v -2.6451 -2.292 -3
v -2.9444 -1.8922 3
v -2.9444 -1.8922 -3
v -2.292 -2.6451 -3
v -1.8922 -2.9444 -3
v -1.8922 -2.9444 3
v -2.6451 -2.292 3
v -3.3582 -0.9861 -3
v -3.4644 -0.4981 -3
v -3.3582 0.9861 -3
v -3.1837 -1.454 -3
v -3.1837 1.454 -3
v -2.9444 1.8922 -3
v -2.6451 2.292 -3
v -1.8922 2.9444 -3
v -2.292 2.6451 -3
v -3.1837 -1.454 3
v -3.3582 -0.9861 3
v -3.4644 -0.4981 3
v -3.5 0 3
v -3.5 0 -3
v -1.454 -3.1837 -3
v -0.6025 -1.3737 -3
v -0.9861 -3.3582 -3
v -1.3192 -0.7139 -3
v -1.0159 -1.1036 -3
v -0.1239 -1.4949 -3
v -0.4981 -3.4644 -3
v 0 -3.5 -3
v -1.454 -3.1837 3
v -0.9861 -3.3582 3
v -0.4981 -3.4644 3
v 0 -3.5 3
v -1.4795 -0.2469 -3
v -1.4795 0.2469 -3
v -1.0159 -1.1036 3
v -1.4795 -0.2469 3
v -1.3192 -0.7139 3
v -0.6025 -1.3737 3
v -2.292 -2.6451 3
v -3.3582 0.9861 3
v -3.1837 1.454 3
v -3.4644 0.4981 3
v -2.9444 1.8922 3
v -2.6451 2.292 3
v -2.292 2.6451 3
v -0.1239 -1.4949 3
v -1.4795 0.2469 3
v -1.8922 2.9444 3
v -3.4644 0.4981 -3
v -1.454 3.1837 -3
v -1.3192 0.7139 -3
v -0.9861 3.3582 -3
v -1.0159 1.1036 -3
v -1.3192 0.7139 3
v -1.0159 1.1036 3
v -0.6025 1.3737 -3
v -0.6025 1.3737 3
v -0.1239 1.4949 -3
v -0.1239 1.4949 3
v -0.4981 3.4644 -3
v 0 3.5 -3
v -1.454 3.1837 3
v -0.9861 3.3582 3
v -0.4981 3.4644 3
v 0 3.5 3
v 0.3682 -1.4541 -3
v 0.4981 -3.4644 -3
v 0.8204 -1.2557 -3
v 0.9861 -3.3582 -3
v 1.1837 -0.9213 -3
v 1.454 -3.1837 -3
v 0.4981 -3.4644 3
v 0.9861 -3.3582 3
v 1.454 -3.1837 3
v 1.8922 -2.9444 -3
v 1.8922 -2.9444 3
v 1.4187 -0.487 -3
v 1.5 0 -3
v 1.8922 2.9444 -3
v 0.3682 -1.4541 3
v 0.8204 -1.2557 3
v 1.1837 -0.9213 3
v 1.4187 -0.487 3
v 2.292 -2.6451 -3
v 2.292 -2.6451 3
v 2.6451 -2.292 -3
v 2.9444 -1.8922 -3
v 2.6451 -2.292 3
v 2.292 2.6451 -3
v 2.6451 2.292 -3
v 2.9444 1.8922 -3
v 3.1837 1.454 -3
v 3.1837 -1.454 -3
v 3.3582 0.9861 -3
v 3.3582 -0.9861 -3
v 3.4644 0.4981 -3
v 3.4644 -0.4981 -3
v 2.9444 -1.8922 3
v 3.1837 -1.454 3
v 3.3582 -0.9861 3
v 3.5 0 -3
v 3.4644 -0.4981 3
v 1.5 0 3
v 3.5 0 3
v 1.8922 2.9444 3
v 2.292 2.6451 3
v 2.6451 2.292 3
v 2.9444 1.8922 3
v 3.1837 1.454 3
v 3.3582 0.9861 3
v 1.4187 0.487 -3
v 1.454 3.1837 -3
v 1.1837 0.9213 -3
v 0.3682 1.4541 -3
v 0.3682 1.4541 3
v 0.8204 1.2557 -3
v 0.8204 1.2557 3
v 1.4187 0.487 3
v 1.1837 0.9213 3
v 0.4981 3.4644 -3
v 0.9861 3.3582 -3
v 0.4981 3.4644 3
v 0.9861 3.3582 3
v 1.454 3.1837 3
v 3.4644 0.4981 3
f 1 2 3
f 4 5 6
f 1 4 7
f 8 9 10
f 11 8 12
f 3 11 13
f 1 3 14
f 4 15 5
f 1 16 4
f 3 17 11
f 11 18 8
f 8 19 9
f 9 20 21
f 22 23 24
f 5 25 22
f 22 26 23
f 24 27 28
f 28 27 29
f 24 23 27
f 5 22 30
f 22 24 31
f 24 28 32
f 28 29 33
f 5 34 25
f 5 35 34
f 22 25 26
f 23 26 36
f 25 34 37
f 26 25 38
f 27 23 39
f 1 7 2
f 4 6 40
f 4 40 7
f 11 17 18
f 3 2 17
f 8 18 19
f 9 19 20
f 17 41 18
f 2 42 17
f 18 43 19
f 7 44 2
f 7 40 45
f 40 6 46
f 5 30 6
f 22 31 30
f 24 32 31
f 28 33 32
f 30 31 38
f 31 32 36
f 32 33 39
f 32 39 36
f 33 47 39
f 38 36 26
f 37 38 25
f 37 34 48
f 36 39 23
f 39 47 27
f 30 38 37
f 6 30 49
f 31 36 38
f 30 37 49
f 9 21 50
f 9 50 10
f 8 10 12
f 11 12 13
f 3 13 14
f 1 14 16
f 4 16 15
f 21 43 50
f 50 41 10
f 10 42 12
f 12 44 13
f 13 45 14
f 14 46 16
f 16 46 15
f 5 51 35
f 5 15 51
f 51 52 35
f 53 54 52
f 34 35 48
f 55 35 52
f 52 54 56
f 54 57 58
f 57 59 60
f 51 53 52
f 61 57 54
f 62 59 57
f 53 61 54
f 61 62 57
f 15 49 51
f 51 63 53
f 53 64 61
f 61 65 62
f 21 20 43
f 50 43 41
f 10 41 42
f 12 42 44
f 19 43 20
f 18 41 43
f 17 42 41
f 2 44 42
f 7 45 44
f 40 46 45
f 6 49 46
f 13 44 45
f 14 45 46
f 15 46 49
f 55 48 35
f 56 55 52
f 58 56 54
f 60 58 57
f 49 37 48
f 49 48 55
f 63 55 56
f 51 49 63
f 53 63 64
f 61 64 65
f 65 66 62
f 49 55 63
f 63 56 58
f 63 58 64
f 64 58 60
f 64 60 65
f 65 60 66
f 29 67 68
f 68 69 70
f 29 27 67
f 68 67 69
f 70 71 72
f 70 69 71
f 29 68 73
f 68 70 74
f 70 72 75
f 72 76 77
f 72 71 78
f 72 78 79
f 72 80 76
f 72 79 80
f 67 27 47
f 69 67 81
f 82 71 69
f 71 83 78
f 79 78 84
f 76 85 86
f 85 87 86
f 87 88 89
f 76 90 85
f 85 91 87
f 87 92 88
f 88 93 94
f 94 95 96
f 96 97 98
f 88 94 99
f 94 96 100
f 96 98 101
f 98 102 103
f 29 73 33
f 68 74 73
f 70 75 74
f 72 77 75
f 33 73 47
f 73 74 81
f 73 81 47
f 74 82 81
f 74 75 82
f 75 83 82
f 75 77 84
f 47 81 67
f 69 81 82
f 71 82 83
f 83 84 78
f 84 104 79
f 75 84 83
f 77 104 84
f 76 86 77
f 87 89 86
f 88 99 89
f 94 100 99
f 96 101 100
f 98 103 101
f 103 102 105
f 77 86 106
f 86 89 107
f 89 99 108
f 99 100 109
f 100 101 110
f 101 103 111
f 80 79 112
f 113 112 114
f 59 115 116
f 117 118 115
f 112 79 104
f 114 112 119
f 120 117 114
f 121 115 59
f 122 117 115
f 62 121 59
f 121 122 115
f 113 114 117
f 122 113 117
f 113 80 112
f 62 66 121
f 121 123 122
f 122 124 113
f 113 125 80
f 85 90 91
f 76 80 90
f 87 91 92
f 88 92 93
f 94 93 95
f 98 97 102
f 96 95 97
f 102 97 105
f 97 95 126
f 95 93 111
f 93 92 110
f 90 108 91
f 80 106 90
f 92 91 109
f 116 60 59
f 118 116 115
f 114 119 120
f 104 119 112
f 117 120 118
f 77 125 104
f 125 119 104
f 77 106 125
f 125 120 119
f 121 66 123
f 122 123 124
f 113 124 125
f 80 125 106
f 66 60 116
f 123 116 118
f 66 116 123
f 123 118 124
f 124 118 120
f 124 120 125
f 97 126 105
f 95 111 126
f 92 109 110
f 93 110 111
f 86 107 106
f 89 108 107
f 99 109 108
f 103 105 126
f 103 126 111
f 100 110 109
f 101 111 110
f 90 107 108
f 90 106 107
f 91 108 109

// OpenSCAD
// file: ../lib/lib.scad
// Shared helpers. Include AFTER params.scad (needs TOL, M3_* etc.).
$fa = 4; $fs = 0.5;

module rrect(size, r) {            // 2D rounded rectangle, centred
    r2 = min(r, min(size[0], size[1]) / 2 - 0.001);
    offset(r = r2) square([size[0] - 2 * r2, size[1] - 2 * r2], center = true);
}
module rbox(size, r, center_xy = true) {   // box with rounded vertical edges
    translate(center_xy ? [0, 0, 0] : [size[0] / 2, size[1] / 2, 0])
        linear_extrude(size[2]) rrect([size[0], size[1]], r);
}
module rbox_at(x0, x1, y0, y1, z0, z1, r = 0.01) {
    translate([(x0 + x1) / 2, (y0 + y1) / 2, z0]) rbox([x1 - x0, y1 - y0, z1 - z0], r);
}
module box_at(x0, x1, y0, y1, z0, z1) { translate([x0, y0, z0]) cube([x1 - x0, y1 - y0, z1 - z0]); }

module ring(ro, ri, h) { difference() { cylinder(r = ro, h = h); translate([0, 0, -1]) cylinder(r = ri, h = h + 2); } }
module ring_sector(ro, ri, h, a0, a1) {
    intersection() {
        ring(ro, ri, h);
        linear_extrude(h) polygon(concat([[0, 0]], [for (a = [a0 : (a1 - a0) / 24 : a1]) 2 * ro * [cos(a), sin(a)]]));
    }
}
// teardrop hole along an axis lying horizontal (axis = Y after rotation), printable w/o support
module teardrop2d(d) { union() { circle(d = d); rotate(45) square(d / 2); } }
// vertical heat-set insert hole, opening at z=0 going +z (depth l)
module insert_hole(l = M3_INSERT_L) { translate([0, 0, -EPS]) cylinder(d = M3_INSERT_D, h = l + EPS); }
module m3_clear(l) { translate([0, 0, -EPS]) cylinder(d = M3_CLEAR, h = l + 2 * EPS); }
module m3_csk(l) {  // countersunk clearance from z=0 upward, head at z=0 side
    translate([0, 0, -EPS]) { cylinder(d = M3_CLEAR, h = l + 2 * EPS); cylinder(d1 = 6.4, d2 = M3_CLEAR, h = 1.7); }
}
module card2d() { rrect([CARD_L, CARD_W], CARD_R); }
module card_at(cy, z) { translate([0, cy, z]) linear_extrude(CARD_T) card2d(); }

// ---- gears ----
function _inv(a) = tan(a) - a * PI_ / 180;           // involute function, a in deg
function _invpt(rb, r, ang0, s) = let(al = acos(rb / r), th = ang0 - s * (_inv(al) * 180 / PI_)) [r * cos(th), r * sin(th)];
module involute_gear2d(m, z, pa = 20, clearance = 0.05) {
    rp = m * z / 2; rb = rp * cos(pa); ra = rp + m - clearance; rf = rp - 1.25 * m;
    half = 90 / z + _inv(pa) * 180 / PI_;            // tooth half-angle at base (deg)
    n = 8;
    rs = [for (i = [0 : n]) max(rb, rf) + (ra - max(rb, rf)) * i / n];
    union() {
        circle(r = rf, $fn = z * 4);
        for (k = [0 : z - 1]) rotate(k * 360 / z) polygon(concat(
            [[rf * cos(-half), rf * sin(-half)]],
            [for (r = rs) let(p = _invpt(rb, r, half, 1)) [p[0], -p[1]]],
            [for (i = [n : -1 : 0]) _invpt(rb, rs[i], half, 1)],
            [[rf * cos(half), rf * sin(half)]]));
    }
}
// straight gear rack (2D in XY: teeth along +x, pointing -y, pitch line at y=0)
module gear_rack2d(m, len, back = 3) {
    p = PI_ * m; ad = m; de = 1.25 * m; t = tan(20);
    n = ceil(len / p) + 1;
    intersection() {
        union() {
            translate([0, de]) square([len, back]);
            for (i = [0 : n]) if (i * p - p / 4 - (p / 4 + de * t) >= 0 && i * p + de * t <= len) translate([i * p - p / 4, 0]) polygon([
                [-(p / 4 + de * t), de + 0.01], [p / 4 + de * t + 0.01, de + 0.01],
                [p / 4 - ad * t, -ad], [-(p / 4 - ad * t), -ad] ]);
        }
        translate([0, -ad - 1]) square([len, ad + de + back + 2]);
    }
}
// GT2 belt-tooth profile ring (teeth outward), 2D
module gt2_ring2d(n, r_land, ri) {
    union() {
        difference() { circle(r = r_land + 0.01, $fn = n * 2); circle(r = ri, $fn = n * 2); }
        for (k = [0 : n - 1]) rotate(k * 360 / n)
            translate([r_land, 0]) hull() { translate([-0.2, 0]) square([0.2, 1.0], center = true); translate([0.25, 0]) circle(r = 0.5, $fn = 12); }
    }
}
// main file
// Vendor model: rubber pinch roller Ø6 x 6 mm, 3 mm bore (loader pinch, x2). Local: axis Z, centred.
include <../params.scad>
include <../lib/lib.scad>
module vendor_pinch_roller() color([0.2,0.2,0.22]) difference() { translate([0, 0, -PINCH_W / 2]) cylinder(d = PINCH_D, h = PINCH_W); cylinder(d = SHAFT_D, h = 20, center = true); }
vendor_pinch_roller();
